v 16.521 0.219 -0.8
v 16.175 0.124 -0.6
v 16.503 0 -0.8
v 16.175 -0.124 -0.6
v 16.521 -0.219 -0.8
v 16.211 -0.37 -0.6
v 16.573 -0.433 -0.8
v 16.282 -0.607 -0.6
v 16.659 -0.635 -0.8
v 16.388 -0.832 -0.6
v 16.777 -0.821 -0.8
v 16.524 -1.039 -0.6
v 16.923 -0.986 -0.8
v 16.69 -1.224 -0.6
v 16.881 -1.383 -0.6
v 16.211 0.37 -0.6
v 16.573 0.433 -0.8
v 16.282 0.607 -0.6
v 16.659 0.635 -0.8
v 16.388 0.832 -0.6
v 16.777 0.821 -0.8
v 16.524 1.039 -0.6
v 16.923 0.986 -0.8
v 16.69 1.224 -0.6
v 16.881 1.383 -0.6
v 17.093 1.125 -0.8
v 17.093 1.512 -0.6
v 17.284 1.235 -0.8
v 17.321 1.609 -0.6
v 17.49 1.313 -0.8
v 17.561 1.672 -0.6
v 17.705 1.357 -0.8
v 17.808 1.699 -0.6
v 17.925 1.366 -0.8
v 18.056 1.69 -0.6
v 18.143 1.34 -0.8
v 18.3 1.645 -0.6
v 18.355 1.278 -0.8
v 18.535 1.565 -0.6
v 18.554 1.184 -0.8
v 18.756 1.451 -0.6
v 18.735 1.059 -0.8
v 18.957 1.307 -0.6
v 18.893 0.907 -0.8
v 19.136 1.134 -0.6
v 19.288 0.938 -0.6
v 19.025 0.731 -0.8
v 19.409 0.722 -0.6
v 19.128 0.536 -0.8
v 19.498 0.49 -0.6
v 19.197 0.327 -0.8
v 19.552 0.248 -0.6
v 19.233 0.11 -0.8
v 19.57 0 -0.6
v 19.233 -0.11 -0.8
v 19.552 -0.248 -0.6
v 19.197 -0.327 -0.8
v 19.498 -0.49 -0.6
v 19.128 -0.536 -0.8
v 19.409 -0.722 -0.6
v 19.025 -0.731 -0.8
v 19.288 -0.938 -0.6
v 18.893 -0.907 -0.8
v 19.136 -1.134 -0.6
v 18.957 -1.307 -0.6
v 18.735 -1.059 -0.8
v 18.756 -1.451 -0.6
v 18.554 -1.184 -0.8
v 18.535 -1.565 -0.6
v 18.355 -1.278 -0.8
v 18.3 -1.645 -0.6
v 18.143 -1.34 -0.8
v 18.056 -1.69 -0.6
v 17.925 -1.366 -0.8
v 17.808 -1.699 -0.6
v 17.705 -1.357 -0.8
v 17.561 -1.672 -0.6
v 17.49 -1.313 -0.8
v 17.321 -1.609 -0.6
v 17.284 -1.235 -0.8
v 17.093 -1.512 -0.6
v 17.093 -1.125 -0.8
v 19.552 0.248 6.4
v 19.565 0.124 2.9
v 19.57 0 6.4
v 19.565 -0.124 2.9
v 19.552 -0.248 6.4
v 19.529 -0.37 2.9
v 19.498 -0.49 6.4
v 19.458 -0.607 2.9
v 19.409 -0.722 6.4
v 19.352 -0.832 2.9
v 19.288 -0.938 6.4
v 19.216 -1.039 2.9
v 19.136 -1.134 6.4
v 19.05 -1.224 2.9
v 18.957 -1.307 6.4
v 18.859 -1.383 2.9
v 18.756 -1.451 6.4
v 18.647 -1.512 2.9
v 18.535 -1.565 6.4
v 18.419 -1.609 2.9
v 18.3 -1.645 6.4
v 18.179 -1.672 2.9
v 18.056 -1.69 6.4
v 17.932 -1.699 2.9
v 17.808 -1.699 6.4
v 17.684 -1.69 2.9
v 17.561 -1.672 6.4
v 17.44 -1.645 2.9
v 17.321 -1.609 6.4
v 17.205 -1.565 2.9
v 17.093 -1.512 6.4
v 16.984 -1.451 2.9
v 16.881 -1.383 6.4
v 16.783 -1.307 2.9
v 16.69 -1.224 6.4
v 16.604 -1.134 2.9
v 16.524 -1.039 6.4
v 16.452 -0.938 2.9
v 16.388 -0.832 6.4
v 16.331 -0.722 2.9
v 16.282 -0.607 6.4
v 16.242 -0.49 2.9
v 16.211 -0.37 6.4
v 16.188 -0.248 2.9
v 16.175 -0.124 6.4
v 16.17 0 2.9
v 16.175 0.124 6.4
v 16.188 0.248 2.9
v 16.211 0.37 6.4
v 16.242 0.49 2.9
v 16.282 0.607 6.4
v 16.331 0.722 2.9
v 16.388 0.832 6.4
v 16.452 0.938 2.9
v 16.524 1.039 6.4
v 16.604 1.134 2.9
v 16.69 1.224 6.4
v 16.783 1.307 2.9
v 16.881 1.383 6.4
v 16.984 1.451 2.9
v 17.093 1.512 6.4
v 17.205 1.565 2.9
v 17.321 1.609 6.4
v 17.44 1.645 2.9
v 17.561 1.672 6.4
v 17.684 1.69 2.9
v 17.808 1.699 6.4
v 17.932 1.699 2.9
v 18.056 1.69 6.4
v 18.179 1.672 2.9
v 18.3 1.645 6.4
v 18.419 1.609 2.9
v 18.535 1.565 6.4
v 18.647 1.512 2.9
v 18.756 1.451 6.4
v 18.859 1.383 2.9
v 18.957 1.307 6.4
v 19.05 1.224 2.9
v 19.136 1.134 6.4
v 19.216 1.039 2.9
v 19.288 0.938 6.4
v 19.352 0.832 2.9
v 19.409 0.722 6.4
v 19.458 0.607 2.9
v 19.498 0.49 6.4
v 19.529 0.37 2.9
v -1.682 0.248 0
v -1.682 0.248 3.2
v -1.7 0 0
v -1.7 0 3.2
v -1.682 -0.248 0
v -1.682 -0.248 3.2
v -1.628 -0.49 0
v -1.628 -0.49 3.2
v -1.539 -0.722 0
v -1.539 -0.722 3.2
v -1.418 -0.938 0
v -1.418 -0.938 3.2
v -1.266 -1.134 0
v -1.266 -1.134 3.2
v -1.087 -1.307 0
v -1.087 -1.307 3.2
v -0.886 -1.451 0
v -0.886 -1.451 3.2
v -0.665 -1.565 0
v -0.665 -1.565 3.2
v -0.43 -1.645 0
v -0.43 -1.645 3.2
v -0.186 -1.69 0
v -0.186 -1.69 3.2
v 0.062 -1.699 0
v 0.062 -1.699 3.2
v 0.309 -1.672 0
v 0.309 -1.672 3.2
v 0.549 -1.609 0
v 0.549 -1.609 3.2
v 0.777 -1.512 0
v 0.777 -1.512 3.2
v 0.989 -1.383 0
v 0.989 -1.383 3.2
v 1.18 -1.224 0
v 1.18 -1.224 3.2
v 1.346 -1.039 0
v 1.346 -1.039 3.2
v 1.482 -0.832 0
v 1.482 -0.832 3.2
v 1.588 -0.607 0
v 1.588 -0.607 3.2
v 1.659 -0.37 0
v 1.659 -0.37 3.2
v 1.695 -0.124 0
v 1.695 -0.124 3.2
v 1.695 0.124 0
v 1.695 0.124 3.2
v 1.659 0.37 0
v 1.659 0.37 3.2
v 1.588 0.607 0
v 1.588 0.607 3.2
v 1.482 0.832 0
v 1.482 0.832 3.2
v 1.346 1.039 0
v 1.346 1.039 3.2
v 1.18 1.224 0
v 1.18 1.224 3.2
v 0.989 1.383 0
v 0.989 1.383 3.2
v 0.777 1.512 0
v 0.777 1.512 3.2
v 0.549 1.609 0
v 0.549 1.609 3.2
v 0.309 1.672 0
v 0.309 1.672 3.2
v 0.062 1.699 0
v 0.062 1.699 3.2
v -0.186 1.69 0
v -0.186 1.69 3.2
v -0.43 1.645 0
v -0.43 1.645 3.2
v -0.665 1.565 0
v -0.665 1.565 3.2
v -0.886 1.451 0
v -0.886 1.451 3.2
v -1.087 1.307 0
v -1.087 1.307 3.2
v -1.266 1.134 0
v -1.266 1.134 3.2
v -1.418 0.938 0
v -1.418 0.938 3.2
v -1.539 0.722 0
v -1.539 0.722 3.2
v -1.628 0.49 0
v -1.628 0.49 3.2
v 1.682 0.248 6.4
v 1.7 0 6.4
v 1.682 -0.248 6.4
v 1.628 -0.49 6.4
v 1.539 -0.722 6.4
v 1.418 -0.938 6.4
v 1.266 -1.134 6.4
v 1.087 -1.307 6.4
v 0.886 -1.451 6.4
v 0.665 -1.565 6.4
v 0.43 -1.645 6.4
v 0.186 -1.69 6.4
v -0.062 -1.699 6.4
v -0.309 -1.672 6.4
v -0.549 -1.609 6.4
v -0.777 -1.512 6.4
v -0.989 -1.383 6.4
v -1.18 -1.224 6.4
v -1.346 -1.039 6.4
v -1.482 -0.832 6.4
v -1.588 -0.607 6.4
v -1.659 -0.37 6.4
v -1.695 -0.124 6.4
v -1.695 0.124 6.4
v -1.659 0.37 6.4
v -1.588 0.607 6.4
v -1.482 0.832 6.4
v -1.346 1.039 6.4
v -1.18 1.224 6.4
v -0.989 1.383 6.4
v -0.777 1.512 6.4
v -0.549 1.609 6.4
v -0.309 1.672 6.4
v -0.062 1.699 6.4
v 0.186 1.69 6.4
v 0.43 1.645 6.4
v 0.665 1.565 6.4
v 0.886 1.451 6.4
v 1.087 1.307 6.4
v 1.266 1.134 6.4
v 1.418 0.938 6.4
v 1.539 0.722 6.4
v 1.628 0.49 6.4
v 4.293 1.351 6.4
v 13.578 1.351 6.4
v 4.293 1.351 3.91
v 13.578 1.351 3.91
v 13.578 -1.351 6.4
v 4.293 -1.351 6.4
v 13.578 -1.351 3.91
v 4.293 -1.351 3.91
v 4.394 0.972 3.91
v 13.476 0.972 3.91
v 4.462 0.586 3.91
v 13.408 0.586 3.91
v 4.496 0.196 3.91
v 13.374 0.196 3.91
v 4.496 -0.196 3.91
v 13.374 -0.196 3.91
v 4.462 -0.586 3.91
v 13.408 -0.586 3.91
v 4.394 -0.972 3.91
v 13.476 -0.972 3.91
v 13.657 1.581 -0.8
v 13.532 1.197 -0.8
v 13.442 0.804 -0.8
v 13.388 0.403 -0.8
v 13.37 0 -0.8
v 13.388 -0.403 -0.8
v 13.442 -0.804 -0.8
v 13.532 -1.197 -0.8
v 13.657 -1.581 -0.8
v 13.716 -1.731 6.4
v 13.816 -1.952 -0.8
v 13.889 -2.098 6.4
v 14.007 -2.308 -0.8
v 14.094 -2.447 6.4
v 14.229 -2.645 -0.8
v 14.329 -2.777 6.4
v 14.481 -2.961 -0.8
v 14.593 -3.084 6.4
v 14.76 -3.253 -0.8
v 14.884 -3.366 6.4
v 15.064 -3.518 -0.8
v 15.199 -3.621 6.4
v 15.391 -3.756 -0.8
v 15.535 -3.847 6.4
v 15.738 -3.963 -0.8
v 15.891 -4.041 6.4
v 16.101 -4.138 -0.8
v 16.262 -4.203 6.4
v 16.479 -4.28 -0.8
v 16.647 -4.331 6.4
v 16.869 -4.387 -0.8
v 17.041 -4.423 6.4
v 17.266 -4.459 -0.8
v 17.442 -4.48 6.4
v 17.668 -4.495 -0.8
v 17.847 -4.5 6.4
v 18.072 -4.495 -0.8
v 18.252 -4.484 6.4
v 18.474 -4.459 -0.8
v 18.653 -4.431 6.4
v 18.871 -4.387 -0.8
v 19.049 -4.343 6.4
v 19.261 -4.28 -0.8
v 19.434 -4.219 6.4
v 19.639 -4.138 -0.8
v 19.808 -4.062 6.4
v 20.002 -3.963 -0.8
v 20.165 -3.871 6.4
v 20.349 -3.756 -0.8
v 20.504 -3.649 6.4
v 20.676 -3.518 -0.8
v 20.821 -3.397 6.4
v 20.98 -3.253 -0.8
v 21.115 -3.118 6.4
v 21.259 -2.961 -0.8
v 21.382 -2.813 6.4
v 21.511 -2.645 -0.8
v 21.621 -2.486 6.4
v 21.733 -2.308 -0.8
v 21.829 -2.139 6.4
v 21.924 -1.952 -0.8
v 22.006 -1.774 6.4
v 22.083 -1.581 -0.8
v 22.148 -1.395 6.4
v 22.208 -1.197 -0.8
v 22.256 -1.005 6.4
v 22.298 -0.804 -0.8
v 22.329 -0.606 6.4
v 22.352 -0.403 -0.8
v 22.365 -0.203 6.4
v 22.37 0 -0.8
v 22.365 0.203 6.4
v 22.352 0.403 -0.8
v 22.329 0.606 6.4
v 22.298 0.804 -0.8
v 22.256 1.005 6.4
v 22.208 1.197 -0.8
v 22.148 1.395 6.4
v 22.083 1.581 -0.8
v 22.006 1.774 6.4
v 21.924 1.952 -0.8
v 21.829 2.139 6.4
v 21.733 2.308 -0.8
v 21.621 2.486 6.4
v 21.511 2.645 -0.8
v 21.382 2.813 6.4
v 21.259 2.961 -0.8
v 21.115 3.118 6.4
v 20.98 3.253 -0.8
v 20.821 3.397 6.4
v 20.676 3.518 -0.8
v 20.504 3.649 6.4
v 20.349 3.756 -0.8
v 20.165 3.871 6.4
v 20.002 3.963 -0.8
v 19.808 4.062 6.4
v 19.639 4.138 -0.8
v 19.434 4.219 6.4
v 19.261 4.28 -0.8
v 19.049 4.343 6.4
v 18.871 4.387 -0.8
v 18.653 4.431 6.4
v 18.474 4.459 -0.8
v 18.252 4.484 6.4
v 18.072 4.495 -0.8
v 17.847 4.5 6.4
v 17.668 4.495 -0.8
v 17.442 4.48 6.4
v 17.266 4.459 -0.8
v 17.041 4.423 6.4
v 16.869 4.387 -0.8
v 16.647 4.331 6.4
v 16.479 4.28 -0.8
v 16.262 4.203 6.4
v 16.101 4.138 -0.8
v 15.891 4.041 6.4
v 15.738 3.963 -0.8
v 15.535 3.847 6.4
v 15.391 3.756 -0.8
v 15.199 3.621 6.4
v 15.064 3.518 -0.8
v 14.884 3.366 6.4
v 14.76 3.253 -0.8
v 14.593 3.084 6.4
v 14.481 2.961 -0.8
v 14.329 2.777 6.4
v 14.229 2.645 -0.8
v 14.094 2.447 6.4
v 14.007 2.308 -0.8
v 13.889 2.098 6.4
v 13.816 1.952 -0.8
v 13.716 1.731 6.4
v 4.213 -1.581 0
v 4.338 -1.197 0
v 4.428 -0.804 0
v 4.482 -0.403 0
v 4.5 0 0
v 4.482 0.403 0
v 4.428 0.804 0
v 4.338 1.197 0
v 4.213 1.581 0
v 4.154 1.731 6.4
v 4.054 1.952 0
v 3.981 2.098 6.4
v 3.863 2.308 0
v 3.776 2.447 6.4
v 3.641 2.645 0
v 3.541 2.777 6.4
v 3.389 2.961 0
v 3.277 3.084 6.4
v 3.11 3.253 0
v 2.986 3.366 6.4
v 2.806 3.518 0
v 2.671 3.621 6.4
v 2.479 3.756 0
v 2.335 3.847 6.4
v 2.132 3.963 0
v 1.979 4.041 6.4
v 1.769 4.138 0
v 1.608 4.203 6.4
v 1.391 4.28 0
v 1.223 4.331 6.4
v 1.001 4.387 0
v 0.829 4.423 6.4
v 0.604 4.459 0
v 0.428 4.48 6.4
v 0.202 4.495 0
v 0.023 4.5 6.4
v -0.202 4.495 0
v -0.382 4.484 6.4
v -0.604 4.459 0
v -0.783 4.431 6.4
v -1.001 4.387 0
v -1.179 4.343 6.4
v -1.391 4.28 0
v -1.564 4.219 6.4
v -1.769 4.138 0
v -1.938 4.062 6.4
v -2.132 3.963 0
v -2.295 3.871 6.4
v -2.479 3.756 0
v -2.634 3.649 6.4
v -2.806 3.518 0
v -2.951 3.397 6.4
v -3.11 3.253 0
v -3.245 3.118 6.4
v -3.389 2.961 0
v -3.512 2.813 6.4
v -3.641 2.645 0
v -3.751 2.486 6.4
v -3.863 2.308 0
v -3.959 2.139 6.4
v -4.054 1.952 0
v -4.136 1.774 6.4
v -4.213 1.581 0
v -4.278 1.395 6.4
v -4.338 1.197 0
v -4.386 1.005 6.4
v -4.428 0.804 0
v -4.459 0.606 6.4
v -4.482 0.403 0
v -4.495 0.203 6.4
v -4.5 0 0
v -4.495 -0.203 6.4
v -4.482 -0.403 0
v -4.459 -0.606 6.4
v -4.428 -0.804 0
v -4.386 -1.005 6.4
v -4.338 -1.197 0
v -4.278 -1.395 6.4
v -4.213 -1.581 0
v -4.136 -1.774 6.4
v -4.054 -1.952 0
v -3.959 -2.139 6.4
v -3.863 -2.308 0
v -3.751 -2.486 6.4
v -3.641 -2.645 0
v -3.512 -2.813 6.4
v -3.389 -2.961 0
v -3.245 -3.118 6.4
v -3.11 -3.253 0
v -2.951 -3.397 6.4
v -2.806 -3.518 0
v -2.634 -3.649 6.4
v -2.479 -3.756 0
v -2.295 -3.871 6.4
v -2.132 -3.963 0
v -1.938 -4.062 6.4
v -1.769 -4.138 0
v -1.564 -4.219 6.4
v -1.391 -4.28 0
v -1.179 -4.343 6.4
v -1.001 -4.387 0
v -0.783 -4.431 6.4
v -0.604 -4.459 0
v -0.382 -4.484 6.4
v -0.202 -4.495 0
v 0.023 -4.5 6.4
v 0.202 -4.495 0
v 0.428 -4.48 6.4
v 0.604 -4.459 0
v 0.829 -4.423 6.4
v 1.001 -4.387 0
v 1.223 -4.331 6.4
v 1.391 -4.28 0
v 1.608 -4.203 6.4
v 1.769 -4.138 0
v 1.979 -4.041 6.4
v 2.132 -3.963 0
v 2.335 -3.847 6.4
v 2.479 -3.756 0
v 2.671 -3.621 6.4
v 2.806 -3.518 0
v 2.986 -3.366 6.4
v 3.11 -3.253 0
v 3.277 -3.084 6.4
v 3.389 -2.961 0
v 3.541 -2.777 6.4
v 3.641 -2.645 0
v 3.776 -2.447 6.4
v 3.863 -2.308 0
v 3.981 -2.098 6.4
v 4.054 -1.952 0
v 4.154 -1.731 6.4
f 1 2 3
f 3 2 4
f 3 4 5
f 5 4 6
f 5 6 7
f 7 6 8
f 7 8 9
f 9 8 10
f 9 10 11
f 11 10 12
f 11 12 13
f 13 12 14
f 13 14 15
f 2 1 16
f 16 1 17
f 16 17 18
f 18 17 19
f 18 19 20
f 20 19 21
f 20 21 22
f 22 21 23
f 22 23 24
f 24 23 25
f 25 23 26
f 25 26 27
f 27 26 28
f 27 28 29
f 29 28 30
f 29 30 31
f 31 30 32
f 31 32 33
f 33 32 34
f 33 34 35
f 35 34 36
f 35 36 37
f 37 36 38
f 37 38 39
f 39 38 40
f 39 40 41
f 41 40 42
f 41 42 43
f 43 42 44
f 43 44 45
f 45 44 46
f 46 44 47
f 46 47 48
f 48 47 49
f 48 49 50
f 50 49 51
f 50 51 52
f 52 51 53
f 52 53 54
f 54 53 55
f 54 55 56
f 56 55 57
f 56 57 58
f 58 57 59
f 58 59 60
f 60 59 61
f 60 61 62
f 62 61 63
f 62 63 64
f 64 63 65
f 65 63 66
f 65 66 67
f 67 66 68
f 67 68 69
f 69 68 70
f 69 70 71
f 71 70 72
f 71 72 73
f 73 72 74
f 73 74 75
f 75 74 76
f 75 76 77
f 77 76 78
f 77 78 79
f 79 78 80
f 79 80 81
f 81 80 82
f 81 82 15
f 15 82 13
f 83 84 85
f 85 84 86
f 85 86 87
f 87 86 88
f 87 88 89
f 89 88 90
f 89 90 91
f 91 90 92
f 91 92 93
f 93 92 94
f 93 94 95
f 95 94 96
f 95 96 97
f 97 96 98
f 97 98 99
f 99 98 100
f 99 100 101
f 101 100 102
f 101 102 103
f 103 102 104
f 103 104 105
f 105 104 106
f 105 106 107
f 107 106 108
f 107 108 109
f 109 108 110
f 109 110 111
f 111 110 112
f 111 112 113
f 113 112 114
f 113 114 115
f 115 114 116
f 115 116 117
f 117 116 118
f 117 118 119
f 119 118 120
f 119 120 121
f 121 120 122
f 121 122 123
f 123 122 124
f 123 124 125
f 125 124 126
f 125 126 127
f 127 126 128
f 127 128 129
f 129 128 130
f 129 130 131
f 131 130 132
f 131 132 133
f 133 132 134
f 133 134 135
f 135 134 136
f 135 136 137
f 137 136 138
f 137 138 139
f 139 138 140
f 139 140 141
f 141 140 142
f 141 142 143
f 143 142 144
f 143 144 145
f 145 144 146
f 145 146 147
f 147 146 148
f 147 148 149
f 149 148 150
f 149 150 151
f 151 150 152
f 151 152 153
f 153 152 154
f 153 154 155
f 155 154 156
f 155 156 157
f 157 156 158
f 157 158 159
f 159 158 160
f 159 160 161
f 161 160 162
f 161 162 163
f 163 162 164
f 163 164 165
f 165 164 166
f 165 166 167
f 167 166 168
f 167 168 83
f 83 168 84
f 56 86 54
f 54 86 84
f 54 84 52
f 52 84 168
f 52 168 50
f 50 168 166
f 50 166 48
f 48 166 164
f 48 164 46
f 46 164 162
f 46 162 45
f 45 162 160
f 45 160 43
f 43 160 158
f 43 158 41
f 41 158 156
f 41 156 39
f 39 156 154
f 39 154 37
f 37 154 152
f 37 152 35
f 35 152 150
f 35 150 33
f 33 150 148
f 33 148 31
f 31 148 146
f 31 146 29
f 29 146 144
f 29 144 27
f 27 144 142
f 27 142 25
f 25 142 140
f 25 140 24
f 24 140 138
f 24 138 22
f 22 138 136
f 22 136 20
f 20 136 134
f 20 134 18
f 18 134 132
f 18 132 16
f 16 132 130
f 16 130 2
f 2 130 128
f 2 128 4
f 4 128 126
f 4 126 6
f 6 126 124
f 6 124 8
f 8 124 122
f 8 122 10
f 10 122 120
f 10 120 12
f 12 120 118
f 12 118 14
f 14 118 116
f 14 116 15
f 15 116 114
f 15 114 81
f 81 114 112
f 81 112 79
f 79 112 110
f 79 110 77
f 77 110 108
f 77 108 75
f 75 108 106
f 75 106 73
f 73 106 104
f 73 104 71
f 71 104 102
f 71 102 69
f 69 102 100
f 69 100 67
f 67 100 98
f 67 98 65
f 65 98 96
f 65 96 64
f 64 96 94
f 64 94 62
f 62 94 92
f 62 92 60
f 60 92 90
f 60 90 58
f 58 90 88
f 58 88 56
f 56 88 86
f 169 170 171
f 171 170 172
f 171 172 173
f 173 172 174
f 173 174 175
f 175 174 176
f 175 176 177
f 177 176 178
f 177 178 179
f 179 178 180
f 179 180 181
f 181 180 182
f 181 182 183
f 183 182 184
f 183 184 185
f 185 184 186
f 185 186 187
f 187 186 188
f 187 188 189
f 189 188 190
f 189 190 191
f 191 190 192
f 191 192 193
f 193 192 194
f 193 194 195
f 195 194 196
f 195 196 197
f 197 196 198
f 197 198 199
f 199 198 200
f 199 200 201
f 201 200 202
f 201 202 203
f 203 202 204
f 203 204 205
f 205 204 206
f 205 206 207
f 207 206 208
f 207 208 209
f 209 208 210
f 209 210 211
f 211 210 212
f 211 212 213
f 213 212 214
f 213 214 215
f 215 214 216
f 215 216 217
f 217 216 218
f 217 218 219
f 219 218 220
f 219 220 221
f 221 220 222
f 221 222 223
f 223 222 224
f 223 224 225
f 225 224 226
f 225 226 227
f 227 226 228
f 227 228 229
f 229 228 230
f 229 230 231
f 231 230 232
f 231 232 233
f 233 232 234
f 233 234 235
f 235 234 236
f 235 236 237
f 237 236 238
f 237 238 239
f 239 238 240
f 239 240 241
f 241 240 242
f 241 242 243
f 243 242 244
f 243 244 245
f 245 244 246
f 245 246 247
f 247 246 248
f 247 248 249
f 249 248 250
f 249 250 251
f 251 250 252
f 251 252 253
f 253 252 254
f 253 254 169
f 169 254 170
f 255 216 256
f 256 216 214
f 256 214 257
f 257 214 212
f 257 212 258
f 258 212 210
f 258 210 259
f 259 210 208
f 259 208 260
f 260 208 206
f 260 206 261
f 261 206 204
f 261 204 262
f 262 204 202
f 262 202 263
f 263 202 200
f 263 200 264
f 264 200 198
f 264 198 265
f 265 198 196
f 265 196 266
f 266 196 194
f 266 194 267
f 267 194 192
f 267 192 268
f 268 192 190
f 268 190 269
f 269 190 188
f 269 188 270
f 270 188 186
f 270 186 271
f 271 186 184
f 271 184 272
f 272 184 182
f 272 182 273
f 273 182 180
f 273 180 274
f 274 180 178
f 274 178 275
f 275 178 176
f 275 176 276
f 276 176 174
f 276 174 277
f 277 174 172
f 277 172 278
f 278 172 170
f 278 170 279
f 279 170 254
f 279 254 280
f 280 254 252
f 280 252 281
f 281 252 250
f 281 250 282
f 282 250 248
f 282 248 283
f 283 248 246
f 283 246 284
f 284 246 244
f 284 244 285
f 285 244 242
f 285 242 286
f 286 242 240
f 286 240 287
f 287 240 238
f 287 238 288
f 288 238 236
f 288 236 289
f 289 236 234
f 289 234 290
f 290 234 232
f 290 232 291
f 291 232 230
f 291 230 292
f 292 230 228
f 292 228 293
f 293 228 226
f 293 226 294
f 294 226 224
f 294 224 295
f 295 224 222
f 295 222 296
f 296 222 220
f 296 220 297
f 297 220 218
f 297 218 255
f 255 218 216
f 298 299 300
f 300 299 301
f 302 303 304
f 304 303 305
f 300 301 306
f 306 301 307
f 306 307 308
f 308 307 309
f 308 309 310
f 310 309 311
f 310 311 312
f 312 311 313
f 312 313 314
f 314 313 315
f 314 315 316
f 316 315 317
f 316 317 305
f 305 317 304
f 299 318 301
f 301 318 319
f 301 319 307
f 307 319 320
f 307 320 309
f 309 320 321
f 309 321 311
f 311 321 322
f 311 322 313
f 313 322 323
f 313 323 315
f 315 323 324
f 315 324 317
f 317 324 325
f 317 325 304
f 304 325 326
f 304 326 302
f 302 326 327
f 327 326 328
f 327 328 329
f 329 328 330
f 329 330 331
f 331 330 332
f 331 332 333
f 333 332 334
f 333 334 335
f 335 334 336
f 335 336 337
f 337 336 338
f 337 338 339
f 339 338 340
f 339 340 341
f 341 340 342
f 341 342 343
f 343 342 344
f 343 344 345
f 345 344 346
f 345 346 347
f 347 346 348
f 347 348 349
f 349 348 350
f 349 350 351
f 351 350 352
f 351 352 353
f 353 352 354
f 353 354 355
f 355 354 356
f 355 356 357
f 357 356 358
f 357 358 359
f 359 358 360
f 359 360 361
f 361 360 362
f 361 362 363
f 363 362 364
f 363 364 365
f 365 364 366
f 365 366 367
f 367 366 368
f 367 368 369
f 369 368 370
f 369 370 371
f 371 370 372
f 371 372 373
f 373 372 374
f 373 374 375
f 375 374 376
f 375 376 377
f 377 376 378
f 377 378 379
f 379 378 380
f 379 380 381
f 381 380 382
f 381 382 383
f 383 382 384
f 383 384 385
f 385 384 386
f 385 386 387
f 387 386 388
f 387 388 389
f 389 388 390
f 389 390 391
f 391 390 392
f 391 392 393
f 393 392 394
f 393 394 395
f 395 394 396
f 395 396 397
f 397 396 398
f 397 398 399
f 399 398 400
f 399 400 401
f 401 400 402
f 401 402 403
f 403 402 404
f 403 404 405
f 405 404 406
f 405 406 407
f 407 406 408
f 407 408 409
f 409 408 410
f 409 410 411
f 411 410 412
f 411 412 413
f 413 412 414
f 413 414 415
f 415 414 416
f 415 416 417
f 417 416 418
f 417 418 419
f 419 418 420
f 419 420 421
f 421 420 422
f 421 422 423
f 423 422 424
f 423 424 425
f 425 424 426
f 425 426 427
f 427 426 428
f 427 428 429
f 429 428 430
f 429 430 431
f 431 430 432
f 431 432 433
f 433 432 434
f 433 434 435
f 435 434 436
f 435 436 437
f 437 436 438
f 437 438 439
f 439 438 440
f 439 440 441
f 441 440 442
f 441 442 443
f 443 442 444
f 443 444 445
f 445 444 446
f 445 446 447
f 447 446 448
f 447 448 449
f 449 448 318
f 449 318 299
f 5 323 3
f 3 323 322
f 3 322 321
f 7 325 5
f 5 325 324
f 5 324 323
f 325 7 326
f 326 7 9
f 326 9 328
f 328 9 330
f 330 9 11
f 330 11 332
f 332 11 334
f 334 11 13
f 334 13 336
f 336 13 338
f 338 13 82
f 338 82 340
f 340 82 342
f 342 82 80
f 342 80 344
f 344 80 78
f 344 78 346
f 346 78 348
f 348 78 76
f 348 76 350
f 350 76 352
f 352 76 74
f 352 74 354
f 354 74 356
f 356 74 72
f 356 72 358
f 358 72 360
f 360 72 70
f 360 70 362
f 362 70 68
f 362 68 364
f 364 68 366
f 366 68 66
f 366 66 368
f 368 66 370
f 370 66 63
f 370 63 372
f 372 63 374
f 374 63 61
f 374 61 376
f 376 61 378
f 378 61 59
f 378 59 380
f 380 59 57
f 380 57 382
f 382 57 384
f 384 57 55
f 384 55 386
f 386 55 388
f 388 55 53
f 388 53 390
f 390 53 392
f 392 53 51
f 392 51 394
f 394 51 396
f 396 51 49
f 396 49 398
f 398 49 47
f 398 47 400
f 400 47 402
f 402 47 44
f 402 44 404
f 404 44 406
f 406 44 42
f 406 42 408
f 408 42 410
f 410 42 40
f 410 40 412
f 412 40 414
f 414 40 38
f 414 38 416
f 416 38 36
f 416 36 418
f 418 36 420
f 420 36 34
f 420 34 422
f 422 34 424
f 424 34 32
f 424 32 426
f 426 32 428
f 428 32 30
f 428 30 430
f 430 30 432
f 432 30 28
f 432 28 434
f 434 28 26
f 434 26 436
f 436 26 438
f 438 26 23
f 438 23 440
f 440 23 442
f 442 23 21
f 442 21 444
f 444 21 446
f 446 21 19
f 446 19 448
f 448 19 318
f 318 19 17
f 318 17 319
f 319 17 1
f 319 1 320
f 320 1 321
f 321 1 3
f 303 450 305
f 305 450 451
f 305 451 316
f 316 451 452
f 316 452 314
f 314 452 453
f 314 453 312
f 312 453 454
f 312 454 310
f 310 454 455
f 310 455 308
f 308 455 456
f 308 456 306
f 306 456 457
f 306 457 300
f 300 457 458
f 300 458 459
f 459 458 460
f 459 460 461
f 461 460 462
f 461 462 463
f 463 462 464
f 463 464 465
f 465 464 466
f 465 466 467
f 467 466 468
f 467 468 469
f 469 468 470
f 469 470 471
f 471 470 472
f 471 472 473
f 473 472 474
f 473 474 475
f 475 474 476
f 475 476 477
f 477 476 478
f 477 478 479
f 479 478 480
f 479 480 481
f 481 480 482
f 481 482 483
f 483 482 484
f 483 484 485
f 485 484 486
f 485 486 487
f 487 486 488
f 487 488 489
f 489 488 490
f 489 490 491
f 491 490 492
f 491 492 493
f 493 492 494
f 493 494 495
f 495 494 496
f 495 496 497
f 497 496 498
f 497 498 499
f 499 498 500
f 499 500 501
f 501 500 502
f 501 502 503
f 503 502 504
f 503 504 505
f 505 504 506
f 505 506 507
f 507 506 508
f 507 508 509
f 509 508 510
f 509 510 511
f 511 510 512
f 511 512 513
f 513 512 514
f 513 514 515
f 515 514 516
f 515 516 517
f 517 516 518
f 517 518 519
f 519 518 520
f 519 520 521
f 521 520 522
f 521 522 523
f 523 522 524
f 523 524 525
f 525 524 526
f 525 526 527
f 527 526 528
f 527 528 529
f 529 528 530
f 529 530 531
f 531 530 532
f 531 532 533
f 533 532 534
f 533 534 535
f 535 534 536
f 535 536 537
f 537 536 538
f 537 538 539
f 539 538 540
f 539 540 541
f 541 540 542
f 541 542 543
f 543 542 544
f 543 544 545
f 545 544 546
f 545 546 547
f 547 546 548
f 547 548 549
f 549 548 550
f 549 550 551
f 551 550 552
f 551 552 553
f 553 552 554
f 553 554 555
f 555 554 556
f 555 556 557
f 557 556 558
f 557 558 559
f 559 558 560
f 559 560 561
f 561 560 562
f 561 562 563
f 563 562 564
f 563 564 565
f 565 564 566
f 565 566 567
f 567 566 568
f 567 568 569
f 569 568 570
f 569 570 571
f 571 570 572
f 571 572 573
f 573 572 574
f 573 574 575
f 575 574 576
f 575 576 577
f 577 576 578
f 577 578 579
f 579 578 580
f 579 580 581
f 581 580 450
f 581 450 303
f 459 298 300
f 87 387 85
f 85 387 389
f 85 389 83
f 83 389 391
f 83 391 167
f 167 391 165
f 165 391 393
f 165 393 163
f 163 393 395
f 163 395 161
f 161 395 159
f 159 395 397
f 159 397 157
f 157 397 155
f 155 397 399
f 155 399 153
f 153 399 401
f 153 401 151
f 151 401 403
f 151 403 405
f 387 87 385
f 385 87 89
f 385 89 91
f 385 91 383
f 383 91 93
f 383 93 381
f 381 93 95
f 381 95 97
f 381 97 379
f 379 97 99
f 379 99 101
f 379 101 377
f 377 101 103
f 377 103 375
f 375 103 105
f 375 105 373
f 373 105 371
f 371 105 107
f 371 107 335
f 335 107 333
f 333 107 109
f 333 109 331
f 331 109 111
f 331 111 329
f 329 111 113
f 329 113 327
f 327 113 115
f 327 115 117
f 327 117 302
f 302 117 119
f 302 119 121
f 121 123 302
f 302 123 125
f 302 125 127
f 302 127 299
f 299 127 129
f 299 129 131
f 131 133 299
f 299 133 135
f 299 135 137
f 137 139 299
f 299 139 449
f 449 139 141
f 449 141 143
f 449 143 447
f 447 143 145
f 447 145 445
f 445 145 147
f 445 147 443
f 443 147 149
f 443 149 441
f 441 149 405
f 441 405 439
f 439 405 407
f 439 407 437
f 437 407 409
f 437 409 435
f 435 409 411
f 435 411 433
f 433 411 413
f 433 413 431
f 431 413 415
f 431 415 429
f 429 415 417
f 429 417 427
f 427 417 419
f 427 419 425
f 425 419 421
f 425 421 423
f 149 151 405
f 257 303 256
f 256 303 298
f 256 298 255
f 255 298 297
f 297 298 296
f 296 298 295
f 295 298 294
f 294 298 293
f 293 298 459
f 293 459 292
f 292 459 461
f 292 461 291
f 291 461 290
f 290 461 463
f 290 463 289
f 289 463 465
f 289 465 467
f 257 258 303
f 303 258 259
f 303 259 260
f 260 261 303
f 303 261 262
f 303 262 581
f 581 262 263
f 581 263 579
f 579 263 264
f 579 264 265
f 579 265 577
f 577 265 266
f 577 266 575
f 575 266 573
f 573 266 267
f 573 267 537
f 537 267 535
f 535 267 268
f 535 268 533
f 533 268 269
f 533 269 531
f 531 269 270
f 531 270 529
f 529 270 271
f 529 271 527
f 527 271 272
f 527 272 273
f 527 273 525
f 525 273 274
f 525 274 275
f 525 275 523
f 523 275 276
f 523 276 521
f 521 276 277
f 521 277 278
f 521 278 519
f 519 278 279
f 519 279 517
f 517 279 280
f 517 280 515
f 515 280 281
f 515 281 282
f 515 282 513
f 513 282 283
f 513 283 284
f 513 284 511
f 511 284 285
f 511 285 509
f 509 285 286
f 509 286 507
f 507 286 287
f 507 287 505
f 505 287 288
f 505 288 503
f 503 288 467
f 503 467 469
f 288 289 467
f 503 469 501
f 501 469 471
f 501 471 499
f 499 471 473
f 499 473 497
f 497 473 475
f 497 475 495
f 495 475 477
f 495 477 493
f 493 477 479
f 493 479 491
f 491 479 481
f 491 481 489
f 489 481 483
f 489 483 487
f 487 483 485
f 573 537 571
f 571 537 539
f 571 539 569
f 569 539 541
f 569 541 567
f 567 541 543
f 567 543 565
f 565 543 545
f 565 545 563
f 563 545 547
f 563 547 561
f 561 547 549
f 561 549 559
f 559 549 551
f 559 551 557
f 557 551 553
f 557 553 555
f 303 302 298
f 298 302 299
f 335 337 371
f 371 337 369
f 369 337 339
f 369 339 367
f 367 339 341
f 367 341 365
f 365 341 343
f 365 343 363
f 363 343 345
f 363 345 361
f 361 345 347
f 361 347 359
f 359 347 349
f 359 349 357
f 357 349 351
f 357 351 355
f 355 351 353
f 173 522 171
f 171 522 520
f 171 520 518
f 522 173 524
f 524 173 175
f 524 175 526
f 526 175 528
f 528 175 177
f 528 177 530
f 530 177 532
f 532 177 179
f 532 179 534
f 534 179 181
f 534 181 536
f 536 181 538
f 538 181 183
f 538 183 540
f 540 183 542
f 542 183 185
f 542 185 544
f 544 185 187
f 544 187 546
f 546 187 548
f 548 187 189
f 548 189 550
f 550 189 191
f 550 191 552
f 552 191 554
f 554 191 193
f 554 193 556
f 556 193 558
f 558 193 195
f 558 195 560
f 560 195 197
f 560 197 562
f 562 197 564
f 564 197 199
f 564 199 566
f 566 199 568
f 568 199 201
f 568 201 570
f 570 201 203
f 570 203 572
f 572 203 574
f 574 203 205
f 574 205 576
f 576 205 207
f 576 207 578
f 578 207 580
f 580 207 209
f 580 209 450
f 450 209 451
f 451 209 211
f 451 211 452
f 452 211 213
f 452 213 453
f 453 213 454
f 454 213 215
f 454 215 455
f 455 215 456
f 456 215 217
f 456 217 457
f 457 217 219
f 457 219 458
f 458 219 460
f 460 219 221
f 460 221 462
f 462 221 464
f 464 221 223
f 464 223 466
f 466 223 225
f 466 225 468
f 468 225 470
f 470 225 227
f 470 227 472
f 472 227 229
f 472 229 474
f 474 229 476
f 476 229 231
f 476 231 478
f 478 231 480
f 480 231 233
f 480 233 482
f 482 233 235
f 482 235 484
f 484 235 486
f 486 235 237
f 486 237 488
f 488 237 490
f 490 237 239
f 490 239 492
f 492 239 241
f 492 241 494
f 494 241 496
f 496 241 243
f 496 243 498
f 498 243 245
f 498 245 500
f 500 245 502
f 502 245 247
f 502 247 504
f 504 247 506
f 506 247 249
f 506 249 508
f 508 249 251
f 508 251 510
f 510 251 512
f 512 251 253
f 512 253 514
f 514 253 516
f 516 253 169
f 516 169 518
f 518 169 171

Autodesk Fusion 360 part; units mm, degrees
sketch "Sketch1" plane through (0, 0, 0) normal (0, 0, 1) x (1, 0, 0)
  circle A0 centre (0, 0) radius 4.5
  line L0 (0, 0) -> (17.87, 0) construction
  circle A1 centre (17.87, 0) radius 4.5
  line L1 (13.5773, 1.35) -> (4.2927, 1.35)
  line L2 (13.5773, -1.35) -> (4.2927, -1.35)
  dimension "d1" = 9
  dimension "d2" = 17.87
  dimension "d3" = 9
  dimension "d4" = 2.7
  dimension "d5" = 1.35
extrude "Extrude1" add sketch "Sketch1" along normal blind 6.4 contours A0 makes body 1
sketch "Sketch2" plane through (0, 0, 6.4) normal (0, 0, 1) x (-1, 0, 0)
  circle A0 centre (0, 0) radius 4.5
  line L0 (0, 0) -> (-17.87, 0) construction
  circle A1 centre (-17.87, 0) radius 4.5
  dimension "d8" = 17.87
  dimension "d9" = 9
extrude "Extrude2" add sketch "Sketch2" against normal blind 7.2 separate body contours A1 makes body 2
sketch "Sketch3" plane through (0, 0, 6.4) normal (0, 0, 1) x (-1, 0, 0)
  circle A0 centre (0, 0) radius 4.5
  circle A1 centre (0, 0) radius 4.5
  line L0 (0, 0) -> (-17.87, 0) construction
  circle A2 centre (-17.87, 0) radius 4.5
  line L1 (-4.2925, -1.3507) -> (-13.5775, -1.3507)
  line L2 (-13.5775, 1.3507) -> (-4.2925, 1.3507)
  dimension "d12" = 17.87
  dimension "d13" = 9
  dimension "d14" = 9.285
  dimension "d15" = 9.285
extrude "Extrude3" add sketch "Sketch3" against normal blind 2.49 contours A0 A1 A2 L1 L2 bodies 1 2
sketch "Sketch4" plane through (0, 0, 0) normal (0, 1, 0) x (1, 0, 0)
hole "Hole1" at (0, 0, 6.4) direction (0, 0, -1) diameter 3.4 depth 7 tip angle 118 bodies 1
hole "Hole2" at (17.87, 0, 6.4) direction (0, 0, -1) diameter 3.4 depth 7 tip angle 118 bodies 1
